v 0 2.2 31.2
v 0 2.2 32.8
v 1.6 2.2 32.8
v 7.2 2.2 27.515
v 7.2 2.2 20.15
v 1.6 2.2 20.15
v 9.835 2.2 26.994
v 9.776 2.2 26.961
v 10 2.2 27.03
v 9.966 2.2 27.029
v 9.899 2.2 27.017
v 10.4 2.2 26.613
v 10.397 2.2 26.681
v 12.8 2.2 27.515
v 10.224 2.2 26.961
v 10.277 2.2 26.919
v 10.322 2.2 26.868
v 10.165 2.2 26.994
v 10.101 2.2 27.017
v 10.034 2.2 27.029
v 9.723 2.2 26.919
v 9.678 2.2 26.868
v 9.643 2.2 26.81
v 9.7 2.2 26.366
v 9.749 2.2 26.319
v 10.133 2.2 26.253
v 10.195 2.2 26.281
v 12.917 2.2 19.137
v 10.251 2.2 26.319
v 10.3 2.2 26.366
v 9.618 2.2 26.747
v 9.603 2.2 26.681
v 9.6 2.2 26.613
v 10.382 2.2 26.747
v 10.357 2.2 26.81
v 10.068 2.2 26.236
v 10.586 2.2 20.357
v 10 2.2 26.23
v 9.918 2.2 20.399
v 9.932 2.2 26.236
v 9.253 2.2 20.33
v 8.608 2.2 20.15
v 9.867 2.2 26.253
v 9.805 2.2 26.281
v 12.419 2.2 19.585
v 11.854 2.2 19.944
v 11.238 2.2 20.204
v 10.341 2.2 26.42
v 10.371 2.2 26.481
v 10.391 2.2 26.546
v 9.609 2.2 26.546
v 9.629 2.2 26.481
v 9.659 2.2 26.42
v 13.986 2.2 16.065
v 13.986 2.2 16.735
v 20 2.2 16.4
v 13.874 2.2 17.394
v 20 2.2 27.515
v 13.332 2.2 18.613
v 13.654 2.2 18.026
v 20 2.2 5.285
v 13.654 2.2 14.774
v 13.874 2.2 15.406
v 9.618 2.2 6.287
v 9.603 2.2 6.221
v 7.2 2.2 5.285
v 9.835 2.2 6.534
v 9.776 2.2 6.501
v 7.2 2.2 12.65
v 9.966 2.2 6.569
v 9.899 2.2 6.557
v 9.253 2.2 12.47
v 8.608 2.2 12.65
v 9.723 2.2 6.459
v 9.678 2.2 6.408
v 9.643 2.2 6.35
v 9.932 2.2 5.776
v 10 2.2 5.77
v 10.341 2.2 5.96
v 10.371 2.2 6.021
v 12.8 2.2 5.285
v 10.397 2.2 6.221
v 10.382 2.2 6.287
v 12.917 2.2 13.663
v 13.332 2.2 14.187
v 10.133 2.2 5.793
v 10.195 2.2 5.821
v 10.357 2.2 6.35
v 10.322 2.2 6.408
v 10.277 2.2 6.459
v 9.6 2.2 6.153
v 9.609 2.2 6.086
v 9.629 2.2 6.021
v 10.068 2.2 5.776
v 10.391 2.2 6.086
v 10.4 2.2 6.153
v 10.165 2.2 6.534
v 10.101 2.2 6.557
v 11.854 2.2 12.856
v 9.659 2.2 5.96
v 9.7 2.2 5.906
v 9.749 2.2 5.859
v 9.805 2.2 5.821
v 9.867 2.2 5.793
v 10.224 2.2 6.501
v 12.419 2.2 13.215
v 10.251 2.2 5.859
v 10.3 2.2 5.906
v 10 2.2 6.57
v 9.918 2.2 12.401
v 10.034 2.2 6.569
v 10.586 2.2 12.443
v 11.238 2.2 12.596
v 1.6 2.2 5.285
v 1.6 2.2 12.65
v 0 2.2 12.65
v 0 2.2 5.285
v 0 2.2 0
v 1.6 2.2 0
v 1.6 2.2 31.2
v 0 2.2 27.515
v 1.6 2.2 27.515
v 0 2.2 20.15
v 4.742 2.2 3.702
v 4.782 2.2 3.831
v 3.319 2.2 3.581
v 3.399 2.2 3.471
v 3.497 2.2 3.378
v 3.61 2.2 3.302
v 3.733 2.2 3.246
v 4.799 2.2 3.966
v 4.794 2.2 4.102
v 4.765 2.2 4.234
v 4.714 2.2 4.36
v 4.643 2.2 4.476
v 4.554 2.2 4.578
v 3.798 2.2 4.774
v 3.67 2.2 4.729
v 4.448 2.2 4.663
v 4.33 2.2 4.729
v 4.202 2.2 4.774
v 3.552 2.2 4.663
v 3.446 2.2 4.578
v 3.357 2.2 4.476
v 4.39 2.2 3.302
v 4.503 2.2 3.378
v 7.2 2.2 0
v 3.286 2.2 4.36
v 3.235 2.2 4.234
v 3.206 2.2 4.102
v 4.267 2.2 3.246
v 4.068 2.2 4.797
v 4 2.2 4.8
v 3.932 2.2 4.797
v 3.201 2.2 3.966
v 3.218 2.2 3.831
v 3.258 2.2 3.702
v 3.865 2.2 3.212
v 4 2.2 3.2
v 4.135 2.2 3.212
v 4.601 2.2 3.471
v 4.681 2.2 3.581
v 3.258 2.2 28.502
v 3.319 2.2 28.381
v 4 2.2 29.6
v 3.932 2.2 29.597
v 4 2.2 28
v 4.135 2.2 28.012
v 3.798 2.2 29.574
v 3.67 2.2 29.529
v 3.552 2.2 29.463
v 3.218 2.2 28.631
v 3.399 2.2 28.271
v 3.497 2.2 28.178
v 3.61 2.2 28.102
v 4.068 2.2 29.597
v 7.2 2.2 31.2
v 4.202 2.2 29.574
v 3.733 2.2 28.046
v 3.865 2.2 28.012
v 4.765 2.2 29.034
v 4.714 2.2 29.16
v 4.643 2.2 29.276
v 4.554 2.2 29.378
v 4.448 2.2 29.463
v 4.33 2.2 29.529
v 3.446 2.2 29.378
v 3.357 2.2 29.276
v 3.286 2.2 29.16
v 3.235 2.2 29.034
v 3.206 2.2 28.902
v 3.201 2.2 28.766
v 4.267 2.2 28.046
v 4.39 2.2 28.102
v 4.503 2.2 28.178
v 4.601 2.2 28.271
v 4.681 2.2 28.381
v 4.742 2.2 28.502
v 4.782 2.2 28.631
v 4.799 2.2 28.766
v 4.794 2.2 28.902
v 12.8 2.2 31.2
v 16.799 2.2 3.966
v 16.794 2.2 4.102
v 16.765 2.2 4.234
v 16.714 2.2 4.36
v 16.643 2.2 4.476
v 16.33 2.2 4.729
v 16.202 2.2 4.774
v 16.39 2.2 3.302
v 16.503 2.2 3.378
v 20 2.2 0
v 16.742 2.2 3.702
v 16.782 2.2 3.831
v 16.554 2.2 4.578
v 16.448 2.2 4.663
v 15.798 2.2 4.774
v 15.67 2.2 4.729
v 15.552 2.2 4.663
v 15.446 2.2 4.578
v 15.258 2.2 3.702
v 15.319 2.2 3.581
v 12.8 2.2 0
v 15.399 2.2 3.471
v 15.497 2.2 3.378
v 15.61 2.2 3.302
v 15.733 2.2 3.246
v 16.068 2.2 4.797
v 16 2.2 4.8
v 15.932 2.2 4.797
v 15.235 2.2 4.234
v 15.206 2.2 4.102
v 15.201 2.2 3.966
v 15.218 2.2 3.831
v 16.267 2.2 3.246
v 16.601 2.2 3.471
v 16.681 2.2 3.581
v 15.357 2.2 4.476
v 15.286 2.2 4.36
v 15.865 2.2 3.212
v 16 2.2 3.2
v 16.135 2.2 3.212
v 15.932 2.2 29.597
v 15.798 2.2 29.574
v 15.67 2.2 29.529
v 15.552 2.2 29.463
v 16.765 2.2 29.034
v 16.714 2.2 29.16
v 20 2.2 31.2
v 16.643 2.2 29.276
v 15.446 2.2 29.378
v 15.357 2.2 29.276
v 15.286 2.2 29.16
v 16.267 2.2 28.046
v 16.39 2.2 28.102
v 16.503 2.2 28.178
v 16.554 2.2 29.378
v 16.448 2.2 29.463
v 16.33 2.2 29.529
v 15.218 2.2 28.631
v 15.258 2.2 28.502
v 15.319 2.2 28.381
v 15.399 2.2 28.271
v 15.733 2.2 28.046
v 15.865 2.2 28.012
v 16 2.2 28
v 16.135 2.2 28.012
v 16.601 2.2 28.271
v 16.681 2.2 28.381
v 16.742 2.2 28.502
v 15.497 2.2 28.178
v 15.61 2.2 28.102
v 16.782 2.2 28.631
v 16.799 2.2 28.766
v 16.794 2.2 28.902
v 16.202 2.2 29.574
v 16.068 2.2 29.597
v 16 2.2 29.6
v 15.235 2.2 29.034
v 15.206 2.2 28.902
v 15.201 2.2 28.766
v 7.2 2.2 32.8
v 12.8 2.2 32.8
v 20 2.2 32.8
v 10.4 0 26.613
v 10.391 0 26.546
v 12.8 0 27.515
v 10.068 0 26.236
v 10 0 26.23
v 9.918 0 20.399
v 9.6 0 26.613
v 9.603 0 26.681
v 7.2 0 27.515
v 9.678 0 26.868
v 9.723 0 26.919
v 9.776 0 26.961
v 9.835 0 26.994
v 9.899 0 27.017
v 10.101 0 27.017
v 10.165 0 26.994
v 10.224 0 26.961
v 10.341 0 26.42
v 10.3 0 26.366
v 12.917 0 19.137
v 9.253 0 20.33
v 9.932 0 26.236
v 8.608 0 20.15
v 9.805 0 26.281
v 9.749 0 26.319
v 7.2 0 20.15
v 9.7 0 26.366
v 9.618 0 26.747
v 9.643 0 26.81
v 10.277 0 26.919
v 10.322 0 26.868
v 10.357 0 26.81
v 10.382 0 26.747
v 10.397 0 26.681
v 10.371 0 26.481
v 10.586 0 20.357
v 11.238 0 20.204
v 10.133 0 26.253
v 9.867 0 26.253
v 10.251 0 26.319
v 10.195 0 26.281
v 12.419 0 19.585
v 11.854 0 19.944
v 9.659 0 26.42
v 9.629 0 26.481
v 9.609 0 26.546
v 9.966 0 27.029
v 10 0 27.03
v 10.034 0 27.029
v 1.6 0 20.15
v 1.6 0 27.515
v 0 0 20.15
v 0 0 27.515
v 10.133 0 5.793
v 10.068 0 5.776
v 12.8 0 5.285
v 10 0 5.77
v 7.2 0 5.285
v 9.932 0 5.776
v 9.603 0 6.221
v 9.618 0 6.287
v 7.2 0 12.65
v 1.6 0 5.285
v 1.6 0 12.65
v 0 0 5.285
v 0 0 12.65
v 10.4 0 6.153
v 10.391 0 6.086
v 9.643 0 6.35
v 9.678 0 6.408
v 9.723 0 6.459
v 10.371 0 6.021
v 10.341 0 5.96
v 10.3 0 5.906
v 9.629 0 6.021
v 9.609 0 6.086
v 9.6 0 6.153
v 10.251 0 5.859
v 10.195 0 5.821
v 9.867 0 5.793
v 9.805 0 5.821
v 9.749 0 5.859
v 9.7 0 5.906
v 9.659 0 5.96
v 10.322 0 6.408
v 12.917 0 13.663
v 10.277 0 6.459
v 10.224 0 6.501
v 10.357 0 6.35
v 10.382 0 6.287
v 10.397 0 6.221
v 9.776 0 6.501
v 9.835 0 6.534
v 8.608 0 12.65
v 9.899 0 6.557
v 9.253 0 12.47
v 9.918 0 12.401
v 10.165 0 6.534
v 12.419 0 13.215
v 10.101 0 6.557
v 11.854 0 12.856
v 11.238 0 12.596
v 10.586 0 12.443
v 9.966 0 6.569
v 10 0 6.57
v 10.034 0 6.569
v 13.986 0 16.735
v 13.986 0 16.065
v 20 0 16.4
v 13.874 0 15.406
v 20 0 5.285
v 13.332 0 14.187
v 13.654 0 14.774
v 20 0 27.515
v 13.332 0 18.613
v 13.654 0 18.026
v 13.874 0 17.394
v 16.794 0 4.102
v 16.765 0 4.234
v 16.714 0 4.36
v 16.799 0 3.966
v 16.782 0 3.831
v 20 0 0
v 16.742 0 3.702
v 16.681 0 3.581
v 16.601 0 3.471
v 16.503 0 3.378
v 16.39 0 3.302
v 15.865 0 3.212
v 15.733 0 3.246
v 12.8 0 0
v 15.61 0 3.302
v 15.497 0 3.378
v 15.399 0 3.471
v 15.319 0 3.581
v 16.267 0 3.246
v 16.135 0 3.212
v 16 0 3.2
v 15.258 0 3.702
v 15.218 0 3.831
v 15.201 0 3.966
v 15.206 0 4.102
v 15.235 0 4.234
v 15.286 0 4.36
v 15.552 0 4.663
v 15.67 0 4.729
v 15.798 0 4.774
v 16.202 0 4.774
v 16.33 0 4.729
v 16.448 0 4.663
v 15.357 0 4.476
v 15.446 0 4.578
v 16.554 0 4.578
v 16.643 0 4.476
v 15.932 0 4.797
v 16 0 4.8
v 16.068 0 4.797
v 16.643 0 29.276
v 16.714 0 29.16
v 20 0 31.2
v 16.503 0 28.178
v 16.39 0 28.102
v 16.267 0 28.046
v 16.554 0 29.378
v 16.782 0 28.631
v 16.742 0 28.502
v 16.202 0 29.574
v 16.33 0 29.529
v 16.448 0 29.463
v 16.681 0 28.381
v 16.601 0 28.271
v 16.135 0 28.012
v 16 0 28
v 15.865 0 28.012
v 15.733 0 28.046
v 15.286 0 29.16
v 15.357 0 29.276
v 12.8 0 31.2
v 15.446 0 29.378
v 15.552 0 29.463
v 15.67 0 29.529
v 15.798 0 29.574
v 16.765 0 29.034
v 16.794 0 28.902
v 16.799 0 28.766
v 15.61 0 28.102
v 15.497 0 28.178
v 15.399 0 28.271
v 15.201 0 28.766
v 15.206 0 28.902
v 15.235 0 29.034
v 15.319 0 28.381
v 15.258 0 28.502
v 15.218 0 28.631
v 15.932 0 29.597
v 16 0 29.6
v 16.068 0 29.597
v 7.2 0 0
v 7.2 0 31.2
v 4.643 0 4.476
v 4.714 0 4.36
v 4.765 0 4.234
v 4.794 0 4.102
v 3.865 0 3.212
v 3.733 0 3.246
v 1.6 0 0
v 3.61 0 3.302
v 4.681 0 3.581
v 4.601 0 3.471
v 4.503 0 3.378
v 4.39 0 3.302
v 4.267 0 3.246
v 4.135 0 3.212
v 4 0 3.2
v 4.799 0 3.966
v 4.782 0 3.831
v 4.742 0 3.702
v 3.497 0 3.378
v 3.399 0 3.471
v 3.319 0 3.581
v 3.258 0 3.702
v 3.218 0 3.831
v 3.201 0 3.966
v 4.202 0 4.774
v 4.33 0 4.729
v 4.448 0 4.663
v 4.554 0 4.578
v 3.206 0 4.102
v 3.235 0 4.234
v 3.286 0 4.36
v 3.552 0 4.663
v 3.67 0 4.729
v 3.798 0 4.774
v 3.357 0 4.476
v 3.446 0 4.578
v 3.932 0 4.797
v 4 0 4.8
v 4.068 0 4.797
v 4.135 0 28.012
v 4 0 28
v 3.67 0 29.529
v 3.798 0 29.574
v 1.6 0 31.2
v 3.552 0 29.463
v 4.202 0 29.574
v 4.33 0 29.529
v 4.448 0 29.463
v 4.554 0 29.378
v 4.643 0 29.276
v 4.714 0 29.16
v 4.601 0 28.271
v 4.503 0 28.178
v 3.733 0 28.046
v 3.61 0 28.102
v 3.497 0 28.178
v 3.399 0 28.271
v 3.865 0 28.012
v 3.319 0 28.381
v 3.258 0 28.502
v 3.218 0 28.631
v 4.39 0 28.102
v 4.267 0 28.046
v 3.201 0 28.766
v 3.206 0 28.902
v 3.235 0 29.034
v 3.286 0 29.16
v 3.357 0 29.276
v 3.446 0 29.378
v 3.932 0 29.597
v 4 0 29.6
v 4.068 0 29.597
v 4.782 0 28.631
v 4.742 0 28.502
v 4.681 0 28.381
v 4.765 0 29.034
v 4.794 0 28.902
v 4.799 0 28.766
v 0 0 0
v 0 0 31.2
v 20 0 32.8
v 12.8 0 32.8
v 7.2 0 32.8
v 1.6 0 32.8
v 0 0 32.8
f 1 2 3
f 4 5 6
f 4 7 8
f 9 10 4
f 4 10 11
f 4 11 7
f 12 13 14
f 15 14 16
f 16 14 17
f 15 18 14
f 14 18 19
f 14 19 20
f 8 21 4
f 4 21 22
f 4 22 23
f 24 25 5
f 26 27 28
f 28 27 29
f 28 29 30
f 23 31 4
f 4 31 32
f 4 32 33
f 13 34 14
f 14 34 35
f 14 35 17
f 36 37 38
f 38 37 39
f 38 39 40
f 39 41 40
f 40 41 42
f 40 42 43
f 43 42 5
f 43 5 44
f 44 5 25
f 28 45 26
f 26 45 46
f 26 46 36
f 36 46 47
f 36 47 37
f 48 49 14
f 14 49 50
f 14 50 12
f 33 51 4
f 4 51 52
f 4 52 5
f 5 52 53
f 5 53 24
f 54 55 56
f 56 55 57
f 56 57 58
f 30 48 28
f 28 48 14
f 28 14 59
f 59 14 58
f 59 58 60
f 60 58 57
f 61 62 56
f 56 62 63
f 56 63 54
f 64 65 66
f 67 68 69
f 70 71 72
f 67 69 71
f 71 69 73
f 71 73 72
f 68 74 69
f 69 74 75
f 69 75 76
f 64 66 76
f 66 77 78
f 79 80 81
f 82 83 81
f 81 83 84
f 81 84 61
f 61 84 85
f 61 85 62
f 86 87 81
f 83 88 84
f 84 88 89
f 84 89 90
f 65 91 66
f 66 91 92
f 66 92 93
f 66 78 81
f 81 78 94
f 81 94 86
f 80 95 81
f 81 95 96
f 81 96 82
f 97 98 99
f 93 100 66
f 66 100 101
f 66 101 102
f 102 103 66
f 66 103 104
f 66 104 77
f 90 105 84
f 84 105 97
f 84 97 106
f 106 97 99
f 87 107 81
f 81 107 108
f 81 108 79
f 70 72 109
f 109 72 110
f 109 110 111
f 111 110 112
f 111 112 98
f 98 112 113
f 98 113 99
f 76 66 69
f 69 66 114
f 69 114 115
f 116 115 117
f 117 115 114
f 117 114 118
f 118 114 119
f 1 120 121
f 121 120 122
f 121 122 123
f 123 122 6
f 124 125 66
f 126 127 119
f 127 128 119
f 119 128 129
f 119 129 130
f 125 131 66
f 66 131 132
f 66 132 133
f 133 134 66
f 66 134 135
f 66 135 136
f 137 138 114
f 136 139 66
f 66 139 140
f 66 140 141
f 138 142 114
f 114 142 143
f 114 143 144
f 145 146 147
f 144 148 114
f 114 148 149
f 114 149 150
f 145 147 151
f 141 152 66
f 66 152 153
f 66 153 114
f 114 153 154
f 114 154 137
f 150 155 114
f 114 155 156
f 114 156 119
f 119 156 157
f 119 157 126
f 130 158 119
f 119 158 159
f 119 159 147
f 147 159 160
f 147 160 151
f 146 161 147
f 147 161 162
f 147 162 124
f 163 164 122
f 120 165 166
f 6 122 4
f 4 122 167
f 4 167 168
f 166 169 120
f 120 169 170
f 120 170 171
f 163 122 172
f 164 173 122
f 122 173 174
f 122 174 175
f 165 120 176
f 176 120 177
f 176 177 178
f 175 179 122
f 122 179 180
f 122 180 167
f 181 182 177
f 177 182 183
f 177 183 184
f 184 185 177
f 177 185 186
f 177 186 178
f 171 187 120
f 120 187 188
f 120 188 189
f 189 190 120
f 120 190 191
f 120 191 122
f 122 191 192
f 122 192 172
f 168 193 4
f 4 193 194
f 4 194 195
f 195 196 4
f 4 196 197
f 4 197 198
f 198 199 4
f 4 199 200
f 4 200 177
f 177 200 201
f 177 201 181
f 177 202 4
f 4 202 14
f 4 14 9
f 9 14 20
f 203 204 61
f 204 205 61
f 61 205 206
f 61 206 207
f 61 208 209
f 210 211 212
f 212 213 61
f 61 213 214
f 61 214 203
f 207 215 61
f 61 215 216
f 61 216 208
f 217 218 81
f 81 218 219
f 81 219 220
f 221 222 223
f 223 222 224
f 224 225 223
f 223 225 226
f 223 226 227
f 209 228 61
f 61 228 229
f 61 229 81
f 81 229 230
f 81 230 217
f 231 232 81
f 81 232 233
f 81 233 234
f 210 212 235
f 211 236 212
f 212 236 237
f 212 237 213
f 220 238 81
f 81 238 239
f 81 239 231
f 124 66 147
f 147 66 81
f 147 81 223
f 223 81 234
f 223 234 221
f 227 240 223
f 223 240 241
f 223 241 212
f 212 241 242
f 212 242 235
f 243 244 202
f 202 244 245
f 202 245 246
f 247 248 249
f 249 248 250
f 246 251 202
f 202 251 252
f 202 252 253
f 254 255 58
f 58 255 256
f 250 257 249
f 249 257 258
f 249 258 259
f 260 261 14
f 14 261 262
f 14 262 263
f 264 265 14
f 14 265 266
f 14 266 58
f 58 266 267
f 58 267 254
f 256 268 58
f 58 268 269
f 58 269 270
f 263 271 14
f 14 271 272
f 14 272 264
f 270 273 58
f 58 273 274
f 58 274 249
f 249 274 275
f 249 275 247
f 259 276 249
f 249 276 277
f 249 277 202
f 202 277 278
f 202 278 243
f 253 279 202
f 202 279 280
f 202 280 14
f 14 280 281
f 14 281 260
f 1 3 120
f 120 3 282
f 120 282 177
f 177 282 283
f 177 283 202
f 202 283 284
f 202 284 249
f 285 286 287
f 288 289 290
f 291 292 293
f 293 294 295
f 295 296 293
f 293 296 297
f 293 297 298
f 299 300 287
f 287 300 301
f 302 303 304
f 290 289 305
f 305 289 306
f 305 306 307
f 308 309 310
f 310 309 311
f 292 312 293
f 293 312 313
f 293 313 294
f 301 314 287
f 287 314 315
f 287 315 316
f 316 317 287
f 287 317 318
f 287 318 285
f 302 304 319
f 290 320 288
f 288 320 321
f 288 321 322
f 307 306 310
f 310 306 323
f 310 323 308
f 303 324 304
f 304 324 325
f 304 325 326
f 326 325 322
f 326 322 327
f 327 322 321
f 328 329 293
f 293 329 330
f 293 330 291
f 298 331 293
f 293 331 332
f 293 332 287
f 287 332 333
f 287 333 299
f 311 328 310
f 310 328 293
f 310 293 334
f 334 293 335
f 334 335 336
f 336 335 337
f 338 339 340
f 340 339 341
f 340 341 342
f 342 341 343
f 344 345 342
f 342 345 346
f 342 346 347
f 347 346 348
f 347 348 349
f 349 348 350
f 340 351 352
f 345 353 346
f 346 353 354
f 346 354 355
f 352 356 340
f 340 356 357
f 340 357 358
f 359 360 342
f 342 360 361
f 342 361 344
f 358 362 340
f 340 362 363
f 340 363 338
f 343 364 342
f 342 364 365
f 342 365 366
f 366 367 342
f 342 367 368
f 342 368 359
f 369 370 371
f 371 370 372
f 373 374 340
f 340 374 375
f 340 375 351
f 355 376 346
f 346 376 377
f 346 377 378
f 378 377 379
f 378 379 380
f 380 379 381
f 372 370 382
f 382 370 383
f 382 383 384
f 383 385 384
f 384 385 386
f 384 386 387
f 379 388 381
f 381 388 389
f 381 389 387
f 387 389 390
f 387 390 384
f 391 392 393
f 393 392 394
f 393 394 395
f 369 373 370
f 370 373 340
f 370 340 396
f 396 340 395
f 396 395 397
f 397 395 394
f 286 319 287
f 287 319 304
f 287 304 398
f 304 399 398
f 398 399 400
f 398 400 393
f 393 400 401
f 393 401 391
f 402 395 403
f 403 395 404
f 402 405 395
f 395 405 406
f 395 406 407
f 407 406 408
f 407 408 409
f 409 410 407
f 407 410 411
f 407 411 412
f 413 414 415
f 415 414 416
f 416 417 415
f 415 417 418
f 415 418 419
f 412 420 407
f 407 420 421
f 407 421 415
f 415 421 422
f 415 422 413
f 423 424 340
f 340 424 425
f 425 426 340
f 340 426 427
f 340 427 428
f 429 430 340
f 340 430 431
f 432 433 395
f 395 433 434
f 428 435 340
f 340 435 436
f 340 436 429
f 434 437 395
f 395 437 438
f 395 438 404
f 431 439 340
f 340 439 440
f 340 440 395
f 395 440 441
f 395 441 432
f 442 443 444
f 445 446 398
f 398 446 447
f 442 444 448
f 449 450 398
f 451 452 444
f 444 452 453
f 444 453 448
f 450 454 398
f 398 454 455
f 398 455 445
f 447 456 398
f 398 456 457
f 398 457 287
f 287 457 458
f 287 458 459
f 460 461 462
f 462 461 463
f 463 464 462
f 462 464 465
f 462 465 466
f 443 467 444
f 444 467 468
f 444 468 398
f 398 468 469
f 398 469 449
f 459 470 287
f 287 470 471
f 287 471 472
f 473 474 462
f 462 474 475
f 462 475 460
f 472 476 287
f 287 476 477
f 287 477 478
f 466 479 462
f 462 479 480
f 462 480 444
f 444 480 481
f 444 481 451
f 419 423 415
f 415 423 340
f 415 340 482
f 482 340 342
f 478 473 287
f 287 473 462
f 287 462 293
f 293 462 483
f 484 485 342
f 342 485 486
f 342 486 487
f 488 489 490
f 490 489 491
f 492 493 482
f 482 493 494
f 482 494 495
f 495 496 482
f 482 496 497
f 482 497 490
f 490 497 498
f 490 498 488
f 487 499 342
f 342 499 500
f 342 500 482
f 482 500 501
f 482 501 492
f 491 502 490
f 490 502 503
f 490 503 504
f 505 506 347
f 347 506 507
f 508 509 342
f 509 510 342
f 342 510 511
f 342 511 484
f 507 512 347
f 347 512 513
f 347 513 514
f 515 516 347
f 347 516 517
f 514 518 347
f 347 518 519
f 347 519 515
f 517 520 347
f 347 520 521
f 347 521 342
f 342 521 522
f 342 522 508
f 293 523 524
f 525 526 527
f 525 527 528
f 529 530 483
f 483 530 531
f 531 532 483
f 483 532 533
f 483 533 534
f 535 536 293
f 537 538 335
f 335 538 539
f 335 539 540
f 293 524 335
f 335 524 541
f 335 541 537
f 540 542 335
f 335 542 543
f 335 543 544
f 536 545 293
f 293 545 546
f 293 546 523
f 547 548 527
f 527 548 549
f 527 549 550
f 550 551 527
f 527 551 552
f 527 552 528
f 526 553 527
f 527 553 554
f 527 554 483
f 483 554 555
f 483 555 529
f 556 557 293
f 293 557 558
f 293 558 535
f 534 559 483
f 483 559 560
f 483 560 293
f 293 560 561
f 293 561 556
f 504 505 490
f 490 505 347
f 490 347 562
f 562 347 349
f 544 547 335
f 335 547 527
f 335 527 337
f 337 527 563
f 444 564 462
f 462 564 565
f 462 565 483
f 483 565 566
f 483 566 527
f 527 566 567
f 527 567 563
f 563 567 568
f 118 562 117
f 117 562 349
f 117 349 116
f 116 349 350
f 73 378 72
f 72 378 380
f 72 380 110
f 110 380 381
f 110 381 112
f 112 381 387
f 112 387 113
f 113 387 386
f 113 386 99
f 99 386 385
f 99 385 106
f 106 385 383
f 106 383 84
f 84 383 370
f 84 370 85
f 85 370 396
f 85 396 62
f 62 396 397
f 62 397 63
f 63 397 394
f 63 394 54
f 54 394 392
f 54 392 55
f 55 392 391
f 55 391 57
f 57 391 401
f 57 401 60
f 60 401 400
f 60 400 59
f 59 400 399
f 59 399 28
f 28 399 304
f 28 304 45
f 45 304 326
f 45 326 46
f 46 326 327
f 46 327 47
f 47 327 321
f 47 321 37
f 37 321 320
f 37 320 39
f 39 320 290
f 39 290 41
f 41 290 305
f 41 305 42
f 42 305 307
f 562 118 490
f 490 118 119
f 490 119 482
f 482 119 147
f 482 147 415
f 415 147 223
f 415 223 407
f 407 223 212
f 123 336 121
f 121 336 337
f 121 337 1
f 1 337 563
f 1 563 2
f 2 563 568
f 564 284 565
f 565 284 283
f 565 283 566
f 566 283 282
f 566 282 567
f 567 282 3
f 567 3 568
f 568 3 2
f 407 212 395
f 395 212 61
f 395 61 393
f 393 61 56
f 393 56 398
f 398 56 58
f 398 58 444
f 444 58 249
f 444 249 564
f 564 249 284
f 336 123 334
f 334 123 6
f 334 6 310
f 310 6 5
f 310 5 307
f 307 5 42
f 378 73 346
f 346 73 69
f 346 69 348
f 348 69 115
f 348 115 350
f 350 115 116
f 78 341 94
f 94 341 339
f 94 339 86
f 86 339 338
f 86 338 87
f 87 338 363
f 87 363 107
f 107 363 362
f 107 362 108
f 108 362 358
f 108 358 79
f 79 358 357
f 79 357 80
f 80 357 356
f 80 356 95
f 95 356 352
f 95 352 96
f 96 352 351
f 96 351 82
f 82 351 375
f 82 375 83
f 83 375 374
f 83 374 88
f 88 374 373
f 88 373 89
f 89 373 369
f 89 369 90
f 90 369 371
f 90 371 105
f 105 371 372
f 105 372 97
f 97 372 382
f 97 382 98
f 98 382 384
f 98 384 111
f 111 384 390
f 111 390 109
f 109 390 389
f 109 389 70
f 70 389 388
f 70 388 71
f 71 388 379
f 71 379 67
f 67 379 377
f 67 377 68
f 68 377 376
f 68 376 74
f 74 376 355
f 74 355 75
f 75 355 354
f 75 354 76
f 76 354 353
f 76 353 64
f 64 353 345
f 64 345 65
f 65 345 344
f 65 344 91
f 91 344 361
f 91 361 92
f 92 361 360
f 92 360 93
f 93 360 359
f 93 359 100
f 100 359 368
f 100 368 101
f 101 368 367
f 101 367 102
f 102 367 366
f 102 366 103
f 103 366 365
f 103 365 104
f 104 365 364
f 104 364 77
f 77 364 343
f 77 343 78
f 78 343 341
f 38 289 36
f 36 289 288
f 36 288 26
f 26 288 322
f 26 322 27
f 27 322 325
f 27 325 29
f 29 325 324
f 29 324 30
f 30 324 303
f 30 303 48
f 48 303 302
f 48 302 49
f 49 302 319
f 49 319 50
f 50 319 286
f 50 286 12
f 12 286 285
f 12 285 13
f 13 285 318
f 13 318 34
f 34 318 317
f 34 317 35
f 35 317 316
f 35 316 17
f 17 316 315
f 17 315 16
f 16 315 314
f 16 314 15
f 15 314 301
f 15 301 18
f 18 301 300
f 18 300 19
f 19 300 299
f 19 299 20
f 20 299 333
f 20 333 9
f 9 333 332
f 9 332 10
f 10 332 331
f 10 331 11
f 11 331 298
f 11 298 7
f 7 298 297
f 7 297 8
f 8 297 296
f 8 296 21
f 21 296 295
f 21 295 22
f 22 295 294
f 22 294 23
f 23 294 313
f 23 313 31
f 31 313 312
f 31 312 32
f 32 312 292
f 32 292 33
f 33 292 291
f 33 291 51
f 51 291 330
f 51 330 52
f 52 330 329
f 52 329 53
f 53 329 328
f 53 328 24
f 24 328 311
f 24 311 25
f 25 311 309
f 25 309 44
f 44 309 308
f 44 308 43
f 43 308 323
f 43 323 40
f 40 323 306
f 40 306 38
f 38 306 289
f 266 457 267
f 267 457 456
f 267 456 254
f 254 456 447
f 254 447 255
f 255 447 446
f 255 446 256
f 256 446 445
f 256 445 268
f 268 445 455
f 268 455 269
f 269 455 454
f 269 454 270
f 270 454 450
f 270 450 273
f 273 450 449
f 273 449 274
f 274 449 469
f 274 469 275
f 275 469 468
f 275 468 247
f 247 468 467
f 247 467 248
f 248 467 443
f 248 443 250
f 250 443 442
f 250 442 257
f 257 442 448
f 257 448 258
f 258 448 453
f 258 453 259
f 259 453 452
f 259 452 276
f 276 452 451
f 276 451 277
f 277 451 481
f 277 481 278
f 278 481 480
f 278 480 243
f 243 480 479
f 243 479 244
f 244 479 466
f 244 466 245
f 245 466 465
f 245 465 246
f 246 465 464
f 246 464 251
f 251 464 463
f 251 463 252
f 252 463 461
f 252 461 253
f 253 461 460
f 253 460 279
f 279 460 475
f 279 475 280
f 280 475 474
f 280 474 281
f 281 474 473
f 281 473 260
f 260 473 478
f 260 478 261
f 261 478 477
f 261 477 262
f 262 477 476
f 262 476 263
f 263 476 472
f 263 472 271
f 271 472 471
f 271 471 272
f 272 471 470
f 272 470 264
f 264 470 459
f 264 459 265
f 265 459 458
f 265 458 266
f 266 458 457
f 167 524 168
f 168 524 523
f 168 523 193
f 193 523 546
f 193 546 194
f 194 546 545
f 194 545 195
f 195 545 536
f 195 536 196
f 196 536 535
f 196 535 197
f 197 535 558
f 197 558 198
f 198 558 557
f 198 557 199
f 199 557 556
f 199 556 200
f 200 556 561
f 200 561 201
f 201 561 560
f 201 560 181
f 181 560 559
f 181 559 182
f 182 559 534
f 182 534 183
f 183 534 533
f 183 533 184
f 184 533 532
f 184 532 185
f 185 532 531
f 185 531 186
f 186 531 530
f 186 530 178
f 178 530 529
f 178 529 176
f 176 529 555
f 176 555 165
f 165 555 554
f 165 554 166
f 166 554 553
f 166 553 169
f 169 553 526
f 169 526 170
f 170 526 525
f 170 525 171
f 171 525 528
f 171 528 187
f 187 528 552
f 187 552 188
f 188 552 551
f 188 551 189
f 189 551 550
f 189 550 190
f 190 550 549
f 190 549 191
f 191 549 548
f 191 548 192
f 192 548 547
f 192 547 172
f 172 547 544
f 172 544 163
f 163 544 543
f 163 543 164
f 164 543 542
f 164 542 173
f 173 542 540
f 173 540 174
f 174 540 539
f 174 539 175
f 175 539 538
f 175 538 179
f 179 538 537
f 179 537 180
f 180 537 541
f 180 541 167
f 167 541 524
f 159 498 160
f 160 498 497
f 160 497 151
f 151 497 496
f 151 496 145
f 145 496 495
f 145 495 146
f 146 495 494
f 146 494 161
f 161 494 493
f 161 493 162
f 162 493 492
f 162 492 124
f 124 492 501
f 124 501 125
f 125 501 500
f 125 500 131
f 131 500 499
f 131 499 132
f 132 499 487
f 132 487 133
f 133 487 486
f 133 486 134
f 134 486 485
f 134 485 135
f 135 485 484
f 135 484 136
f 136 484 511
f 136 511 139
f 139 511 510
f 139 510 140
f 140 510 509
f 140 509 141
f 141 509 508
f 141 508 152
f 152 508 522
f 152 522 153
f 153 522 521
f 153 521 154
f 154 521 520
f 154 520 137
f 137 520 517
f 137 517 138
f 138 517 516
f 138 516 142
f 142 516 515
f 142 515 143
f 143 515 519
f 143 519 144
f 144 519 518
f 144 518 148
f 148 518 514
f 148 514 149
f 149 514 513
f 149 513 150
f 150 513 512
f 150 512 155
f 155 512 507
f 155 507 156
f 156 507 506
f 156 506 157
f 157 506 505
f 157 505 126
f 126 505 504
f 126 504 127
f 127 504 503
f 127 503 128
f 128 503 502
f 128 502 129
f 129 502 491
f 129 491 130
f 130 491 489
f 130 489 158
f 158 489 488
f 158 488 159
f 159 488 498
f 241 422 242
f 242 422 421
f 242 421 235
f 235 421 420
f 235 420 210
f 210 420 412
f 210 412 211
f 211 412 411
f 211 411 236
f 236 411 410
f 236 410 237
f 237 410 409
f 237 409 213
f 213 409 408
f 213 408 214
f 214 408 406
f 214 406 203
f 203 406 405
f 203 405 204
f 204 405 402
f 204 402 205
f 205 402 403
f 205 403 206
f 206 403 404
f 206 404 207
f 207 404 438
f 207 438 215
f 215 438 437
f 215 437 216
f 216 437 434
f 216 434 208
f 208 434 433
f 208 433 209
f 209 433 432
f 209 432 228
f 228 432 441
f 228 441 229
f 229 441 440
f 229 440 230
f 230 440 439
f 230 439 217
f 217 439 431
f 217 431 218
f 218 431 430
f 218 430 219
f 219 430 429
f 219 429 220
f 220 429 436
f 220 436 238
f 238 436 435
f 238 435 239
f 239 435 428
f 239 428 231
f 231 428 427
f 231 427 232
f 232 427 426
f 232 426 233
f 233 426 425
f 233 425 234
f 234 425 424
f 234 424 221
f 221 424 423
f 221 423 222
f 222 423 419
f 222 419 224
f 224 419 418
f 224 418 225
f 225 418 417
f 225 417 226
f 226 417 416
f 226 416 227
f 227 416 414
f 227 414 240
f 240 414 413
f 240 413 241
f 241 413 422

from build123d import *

# Parameters (mm, degrees)
SKETCH_1_R      = 0.8
SKETCH_1_R_2    = 0.4
EXTRUDE_1_DEPTH = 2.2


with BuildPart() as part:
    # 草图1 → 凸台-拉伸1 (new body)
    with BuildSketch(Plane(origin=(0, 0, 0), x_dir=(1, 0, 0), z_dir=(0, 1, 0))):
        with BuildLine():
            Line((20, 0), (0, 0))
            Line((0, 0), (0, -12.65))
            Line((0, -12.65), (8.608058909, -12.65))
            ThreePointArc((8.608058909, -12.65), (12.283882181, -13.116117819), (14, -16.4))
            ThreePointArc((14, -16.4), (12.283882181, -19.683882181), (8.608058909, -20.15))
            Line((8.608058909, -20.15), (0, -20.15))
            Line((0, -20.15), (0, -32.8))
            Line((0, -32.8), (20, -32.8))
            Line((20, -32.8), (20, 0))
        make_face()
        with Locations(Location((4, -28.8, 0), (0, 0, 270))):
            Circle(SKETCH_1_R, mode=Mode.SUBTRACT)
        with Locations(Location((10, -26.63, 0), (0, 0, 270))):
            Circle(SKETCH_1_R_2, mode=Mode.SUBTRACT)
        with Locations(Location((16, -28.8, 0), (0, 0, 270))):
            Circle(SKETCH_1_R, mode=Mode.SUBTRACT)
        with Locations(Location((4, -4, 0), (0, 0, 270))):
            Circle(SKETCH_1_R, mode=Mode.SUBTRACT)
        with Locations(Location((10, -6.17, 0), (0, 0, 270))):
            Circle(SKETCH_1_R_2, mode=Mode.SUBTRACT)
        with Locations(Location((16, -4, 0), (0, 0, 270))):
            Circle(SKETCH_1_R, mode=Mode.SUBTRACT)
    extrude(amount=EXTRUDE_1_DEPTH)


solid = part.part
